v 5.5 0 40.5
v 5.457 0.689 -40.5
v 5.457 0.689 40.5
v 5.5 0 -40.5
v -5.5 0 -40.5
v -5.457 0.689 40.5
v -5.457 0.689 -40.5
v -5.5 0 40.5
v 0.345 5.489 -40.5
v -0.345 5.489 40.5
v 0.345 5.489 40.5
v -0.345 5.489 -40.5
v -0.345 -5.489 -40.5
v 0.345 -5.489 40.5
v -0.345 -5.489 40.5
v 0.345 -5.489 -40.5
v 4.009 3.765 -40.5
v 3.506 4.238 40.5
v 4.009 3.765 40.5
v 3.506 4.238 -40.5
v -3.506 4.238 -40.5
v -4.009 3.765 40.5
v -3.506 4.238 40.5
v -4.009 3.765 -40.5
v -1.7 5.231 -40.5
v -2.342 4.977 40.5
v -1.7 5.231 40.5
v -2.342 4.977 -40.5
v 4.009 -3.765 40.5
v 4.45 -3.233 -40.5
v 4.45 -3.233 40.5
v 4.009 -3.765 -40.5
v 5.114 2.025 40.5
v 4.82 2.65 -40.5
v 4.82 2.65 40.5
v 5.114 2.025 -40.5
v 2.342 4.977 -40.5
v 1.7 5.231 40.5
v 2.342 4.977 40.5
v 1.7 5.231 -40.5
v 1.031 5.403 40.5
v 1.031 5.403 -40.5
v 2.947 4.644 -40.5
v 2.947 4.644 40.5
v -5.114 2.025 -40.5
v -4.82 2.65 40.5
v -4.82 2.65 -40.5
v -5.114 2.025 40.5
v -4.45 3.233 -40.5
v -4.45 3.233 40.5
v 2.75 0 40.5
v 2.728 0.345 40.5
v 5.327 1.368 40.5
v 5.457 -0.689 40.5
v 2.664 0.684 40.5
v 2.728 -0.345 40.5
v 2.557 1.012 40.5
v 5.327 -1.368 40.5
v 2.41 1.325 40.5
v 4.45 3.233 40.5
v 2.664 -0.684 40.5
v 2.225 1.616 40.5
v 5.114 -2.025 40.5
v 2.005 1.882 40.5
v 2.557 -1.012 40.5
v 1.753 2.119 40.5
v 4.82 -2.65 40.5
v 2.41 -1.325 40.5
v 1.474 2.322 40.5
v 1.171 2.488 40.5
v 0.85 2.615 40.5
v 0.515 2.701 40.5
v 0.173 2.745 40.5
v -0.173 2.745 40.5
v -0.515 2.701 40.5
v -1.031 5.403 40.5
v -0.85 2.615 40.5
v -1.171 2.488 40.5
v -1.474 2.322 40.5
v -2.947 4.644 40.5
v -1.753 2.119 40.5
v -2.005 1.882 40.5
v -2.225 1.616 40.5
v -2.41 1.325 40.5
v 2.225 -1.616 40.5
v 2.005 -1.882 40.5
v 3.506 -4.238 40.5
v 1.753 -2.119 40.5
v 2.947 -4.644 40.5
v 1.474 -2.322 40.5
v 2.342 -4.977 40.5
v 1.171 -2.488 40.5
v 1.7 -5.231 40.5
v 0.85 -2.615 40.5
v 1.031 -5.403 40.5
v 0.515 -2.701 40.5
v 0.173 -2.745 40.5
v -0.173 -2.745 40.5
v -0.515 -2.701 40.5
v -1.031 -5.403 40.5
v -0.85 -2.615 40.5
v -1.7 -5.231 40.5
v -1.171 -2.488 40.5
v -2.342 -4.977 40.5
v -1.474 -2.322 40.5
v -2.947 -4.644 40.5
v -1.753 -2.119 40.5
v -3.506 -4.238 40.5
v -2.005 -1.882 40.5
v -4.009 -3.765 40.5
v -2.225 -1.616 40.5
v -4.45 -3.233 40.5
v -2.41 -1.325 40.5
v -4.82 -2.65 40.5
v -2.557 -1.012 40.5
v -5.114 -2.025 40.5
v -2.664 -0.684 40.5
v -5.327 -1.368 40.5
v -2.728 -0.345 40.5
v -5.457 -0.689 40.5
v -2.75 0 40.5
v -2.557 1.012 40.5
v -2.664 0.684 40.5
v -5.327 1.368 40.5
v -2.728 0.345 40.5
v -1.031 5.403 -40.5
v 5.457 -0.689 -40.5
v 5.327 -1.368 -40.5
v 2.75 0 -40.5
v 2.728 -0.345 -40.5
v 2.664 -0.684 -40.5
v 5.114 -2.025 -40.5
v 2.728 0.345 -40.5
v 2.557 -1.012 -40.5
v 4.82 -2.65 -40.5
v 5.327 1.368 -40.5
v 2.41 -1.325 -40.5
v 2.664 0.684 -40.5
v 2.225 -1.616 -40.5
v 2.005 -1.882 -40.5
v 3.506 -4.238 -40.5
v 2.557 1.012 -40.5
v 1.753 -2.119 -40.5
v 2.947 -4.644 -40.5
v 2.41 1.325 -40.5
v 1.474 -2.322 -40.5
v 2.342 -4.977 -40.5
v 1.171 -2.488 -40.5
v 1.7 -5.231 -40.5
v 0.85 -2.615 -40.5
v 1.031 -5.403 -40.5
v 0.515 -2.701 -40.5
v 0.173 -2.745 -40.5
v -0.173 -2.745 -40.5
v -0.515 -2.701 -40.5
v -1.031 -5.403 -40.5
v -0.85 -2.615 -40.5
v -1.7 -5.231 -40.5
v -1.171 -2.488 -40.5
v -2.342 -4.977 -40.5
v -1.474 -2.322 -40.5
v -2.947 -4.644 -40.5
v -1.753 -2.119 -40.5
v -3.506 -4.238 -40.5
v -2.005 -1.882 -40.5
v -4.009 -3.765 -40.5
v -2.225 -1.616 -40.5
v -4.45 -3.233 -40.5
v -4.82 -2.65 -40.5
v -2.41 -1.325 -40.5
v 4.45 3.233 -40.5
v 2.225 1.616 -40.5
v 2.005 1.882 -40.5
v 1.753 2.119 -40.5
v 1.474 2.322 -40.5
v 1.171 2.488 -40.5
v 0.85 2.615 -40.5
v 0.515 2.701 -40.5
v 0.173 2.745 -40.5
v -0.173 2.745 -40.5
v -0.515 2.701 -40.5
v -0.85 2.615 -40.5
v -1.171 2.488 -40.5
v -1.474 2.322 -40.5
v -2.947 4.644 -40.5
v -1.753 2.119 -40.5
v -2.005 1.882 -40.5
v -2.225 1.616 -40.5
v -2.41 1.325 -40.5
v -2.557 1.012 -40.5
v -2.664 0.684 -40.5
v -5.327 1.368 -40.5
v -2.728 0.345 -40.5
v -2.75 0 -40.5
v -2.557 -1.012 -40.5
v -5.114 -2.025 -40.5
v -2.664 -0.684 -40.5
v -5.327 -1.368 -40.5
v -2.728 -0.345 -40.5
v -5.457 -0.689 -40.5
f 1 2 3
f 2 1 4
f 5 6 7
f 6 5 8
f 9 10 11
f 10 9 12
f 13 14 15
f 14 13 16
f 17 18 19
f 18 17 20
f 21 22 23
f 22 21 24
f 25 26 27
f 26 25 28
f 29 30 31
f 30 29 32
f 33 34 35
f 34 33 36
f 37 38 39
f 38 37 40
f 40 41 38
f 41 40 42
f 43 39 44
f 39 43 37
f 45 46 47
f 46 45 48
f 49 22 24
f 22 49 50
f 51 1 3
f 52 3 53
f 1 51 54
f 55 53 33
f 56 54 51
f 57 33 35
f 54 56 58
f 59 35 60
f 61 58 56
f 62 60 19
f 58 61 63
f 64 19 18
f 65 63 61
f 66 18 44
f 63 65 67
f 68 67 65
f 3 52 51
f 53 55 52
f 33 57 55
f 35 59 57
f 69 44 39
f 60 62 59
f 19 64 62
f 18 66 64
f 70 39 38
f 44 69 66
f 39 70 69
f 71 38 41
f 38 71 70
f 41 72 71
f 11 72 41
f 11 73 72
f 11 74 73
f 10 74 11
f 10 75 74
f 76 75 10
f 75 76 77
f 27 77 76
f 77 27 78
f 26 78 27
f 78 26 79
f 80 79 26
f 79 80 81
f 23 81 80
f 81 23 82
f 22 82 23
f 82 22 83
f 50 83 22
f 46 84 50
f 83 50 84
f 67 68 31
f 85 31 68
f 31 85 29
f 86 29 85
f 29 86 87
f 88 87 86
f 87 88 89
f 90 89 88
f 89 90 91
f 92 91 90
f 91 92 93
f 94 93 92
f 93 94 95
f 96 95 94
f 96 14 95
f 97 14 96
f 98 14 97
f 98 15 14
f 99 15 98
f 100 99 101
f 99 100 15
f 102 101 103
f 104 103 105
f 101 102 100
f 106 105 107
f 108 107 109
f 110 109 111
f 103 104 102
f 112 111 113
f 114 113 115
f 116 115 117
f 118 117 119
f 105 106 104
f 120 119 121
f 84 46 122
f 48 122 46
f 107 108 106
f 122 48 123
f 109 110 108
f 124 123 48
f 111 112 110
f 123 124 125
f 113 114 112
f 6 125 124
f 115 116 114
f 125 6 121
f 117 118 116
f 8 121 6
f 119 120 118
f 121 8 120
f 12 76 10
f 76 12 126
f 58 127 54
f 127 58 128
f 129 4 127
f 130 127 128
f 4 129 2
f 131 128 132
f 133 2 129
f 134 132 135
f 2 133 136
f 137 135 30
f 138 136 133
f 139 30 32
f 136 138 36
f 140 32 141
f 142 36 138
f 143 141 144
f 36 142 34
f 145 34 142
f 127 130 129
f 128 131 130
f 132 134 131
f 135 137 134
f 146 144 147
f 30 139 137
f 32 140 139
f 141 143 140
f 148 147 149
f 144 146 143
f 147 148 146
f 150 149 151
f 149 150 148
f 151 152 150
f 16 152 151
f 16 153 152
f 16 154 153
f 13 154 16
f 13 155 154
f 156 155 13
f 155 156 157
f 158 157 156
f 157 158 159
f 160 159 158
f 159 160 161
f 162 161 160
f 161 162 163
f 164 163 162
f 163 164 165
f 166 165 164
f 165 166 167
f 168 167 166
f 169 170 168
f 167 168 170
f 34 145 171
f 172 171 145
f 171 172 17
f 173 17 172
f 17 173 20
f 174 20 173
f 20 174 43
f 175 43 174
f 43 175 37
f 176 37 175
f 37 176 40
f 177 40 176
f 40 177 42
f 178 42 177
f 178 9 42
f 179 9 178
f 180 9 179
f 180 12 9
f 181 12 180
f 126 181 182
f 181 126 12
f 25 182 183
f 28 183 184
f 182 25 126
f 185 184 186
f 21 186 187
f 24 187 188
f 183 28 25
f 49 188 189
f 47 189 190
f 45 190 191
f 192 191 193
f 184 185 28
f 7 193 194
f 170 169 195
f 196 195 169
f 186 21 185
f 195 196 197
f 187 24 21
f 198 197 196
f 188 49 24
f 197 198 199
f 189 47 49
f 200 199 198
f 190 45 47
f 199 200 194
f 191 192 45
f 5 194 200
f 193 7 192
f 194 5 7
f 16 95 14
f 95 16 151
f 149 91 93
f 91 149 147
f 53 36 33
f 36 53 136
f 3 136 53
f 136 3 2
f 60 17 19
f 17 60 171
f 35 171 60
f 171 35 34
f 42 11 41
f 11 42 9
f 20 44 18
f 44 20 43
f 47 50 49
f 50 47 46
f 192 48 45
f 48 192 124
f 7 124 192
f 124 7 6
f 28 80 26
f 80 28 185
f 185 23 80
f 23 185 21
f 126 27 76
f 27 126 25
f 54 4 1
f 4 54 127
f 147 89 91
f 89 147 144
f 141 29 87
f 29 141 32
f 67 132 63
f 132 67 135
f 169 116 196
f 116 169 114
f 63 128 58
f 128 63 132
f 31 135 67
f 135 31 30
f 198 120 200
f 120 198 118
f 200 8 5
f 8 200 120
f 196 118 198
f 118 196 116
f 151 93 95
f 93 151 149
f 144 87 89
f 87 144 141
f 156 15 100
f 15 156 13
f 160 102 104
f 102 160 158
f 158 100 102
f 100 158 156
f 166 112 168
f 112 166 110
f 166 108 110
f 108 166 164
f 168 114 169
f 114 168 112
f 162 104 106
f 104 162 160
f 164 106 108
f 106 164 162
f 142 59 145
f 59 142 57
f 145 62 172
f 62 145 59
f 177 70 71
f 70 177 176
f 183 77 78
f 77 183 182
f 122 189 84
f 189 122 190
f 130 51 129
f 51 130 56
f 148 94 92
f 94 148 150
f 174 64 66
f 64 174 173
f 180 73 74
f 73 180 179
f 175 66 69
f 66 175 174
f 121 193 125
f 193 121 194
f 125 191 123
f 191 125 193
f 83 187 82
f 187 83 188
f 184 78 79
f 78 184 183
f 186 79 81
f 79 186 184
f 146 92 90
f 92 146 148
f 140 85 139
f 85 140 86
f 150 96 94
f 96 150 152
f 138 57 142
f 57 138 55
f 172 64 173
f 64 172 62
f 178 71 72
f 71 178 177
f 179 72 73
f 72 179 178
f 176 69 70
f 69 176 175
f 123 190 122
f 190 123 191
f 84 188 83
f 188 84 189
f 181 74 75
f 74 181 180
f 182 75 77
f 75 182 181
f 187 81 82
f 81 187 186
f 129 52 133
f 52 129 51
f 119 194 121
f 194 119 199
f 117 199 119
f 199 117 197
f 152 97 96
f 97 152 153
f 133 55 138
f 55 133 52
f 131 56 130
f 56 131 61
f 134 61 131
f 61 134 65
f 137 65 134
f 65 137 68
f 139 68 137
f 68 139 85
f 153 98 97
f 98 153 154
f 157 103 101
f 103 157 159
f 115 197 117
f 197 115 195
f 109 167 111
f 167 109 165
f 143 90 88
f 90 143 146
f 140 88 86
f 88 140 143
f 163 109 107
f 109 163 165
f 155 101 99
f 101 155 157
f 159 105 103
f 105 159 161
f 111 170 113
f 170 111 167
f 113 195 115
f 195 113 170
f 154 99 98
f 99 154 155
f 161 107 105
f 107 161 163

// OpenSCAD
$fn = 50;


difference() {
	union() {
		translate(v = [0, 0, -40.5000000000]) {
			cylinder(h = 81, r = 5.5000000000);
		}
	}
	union() {
		translate(v = [0, 0, -100.0000000000]) {
			cylinder(h = 200, r = 2.7500000000);
		}
	}
}
